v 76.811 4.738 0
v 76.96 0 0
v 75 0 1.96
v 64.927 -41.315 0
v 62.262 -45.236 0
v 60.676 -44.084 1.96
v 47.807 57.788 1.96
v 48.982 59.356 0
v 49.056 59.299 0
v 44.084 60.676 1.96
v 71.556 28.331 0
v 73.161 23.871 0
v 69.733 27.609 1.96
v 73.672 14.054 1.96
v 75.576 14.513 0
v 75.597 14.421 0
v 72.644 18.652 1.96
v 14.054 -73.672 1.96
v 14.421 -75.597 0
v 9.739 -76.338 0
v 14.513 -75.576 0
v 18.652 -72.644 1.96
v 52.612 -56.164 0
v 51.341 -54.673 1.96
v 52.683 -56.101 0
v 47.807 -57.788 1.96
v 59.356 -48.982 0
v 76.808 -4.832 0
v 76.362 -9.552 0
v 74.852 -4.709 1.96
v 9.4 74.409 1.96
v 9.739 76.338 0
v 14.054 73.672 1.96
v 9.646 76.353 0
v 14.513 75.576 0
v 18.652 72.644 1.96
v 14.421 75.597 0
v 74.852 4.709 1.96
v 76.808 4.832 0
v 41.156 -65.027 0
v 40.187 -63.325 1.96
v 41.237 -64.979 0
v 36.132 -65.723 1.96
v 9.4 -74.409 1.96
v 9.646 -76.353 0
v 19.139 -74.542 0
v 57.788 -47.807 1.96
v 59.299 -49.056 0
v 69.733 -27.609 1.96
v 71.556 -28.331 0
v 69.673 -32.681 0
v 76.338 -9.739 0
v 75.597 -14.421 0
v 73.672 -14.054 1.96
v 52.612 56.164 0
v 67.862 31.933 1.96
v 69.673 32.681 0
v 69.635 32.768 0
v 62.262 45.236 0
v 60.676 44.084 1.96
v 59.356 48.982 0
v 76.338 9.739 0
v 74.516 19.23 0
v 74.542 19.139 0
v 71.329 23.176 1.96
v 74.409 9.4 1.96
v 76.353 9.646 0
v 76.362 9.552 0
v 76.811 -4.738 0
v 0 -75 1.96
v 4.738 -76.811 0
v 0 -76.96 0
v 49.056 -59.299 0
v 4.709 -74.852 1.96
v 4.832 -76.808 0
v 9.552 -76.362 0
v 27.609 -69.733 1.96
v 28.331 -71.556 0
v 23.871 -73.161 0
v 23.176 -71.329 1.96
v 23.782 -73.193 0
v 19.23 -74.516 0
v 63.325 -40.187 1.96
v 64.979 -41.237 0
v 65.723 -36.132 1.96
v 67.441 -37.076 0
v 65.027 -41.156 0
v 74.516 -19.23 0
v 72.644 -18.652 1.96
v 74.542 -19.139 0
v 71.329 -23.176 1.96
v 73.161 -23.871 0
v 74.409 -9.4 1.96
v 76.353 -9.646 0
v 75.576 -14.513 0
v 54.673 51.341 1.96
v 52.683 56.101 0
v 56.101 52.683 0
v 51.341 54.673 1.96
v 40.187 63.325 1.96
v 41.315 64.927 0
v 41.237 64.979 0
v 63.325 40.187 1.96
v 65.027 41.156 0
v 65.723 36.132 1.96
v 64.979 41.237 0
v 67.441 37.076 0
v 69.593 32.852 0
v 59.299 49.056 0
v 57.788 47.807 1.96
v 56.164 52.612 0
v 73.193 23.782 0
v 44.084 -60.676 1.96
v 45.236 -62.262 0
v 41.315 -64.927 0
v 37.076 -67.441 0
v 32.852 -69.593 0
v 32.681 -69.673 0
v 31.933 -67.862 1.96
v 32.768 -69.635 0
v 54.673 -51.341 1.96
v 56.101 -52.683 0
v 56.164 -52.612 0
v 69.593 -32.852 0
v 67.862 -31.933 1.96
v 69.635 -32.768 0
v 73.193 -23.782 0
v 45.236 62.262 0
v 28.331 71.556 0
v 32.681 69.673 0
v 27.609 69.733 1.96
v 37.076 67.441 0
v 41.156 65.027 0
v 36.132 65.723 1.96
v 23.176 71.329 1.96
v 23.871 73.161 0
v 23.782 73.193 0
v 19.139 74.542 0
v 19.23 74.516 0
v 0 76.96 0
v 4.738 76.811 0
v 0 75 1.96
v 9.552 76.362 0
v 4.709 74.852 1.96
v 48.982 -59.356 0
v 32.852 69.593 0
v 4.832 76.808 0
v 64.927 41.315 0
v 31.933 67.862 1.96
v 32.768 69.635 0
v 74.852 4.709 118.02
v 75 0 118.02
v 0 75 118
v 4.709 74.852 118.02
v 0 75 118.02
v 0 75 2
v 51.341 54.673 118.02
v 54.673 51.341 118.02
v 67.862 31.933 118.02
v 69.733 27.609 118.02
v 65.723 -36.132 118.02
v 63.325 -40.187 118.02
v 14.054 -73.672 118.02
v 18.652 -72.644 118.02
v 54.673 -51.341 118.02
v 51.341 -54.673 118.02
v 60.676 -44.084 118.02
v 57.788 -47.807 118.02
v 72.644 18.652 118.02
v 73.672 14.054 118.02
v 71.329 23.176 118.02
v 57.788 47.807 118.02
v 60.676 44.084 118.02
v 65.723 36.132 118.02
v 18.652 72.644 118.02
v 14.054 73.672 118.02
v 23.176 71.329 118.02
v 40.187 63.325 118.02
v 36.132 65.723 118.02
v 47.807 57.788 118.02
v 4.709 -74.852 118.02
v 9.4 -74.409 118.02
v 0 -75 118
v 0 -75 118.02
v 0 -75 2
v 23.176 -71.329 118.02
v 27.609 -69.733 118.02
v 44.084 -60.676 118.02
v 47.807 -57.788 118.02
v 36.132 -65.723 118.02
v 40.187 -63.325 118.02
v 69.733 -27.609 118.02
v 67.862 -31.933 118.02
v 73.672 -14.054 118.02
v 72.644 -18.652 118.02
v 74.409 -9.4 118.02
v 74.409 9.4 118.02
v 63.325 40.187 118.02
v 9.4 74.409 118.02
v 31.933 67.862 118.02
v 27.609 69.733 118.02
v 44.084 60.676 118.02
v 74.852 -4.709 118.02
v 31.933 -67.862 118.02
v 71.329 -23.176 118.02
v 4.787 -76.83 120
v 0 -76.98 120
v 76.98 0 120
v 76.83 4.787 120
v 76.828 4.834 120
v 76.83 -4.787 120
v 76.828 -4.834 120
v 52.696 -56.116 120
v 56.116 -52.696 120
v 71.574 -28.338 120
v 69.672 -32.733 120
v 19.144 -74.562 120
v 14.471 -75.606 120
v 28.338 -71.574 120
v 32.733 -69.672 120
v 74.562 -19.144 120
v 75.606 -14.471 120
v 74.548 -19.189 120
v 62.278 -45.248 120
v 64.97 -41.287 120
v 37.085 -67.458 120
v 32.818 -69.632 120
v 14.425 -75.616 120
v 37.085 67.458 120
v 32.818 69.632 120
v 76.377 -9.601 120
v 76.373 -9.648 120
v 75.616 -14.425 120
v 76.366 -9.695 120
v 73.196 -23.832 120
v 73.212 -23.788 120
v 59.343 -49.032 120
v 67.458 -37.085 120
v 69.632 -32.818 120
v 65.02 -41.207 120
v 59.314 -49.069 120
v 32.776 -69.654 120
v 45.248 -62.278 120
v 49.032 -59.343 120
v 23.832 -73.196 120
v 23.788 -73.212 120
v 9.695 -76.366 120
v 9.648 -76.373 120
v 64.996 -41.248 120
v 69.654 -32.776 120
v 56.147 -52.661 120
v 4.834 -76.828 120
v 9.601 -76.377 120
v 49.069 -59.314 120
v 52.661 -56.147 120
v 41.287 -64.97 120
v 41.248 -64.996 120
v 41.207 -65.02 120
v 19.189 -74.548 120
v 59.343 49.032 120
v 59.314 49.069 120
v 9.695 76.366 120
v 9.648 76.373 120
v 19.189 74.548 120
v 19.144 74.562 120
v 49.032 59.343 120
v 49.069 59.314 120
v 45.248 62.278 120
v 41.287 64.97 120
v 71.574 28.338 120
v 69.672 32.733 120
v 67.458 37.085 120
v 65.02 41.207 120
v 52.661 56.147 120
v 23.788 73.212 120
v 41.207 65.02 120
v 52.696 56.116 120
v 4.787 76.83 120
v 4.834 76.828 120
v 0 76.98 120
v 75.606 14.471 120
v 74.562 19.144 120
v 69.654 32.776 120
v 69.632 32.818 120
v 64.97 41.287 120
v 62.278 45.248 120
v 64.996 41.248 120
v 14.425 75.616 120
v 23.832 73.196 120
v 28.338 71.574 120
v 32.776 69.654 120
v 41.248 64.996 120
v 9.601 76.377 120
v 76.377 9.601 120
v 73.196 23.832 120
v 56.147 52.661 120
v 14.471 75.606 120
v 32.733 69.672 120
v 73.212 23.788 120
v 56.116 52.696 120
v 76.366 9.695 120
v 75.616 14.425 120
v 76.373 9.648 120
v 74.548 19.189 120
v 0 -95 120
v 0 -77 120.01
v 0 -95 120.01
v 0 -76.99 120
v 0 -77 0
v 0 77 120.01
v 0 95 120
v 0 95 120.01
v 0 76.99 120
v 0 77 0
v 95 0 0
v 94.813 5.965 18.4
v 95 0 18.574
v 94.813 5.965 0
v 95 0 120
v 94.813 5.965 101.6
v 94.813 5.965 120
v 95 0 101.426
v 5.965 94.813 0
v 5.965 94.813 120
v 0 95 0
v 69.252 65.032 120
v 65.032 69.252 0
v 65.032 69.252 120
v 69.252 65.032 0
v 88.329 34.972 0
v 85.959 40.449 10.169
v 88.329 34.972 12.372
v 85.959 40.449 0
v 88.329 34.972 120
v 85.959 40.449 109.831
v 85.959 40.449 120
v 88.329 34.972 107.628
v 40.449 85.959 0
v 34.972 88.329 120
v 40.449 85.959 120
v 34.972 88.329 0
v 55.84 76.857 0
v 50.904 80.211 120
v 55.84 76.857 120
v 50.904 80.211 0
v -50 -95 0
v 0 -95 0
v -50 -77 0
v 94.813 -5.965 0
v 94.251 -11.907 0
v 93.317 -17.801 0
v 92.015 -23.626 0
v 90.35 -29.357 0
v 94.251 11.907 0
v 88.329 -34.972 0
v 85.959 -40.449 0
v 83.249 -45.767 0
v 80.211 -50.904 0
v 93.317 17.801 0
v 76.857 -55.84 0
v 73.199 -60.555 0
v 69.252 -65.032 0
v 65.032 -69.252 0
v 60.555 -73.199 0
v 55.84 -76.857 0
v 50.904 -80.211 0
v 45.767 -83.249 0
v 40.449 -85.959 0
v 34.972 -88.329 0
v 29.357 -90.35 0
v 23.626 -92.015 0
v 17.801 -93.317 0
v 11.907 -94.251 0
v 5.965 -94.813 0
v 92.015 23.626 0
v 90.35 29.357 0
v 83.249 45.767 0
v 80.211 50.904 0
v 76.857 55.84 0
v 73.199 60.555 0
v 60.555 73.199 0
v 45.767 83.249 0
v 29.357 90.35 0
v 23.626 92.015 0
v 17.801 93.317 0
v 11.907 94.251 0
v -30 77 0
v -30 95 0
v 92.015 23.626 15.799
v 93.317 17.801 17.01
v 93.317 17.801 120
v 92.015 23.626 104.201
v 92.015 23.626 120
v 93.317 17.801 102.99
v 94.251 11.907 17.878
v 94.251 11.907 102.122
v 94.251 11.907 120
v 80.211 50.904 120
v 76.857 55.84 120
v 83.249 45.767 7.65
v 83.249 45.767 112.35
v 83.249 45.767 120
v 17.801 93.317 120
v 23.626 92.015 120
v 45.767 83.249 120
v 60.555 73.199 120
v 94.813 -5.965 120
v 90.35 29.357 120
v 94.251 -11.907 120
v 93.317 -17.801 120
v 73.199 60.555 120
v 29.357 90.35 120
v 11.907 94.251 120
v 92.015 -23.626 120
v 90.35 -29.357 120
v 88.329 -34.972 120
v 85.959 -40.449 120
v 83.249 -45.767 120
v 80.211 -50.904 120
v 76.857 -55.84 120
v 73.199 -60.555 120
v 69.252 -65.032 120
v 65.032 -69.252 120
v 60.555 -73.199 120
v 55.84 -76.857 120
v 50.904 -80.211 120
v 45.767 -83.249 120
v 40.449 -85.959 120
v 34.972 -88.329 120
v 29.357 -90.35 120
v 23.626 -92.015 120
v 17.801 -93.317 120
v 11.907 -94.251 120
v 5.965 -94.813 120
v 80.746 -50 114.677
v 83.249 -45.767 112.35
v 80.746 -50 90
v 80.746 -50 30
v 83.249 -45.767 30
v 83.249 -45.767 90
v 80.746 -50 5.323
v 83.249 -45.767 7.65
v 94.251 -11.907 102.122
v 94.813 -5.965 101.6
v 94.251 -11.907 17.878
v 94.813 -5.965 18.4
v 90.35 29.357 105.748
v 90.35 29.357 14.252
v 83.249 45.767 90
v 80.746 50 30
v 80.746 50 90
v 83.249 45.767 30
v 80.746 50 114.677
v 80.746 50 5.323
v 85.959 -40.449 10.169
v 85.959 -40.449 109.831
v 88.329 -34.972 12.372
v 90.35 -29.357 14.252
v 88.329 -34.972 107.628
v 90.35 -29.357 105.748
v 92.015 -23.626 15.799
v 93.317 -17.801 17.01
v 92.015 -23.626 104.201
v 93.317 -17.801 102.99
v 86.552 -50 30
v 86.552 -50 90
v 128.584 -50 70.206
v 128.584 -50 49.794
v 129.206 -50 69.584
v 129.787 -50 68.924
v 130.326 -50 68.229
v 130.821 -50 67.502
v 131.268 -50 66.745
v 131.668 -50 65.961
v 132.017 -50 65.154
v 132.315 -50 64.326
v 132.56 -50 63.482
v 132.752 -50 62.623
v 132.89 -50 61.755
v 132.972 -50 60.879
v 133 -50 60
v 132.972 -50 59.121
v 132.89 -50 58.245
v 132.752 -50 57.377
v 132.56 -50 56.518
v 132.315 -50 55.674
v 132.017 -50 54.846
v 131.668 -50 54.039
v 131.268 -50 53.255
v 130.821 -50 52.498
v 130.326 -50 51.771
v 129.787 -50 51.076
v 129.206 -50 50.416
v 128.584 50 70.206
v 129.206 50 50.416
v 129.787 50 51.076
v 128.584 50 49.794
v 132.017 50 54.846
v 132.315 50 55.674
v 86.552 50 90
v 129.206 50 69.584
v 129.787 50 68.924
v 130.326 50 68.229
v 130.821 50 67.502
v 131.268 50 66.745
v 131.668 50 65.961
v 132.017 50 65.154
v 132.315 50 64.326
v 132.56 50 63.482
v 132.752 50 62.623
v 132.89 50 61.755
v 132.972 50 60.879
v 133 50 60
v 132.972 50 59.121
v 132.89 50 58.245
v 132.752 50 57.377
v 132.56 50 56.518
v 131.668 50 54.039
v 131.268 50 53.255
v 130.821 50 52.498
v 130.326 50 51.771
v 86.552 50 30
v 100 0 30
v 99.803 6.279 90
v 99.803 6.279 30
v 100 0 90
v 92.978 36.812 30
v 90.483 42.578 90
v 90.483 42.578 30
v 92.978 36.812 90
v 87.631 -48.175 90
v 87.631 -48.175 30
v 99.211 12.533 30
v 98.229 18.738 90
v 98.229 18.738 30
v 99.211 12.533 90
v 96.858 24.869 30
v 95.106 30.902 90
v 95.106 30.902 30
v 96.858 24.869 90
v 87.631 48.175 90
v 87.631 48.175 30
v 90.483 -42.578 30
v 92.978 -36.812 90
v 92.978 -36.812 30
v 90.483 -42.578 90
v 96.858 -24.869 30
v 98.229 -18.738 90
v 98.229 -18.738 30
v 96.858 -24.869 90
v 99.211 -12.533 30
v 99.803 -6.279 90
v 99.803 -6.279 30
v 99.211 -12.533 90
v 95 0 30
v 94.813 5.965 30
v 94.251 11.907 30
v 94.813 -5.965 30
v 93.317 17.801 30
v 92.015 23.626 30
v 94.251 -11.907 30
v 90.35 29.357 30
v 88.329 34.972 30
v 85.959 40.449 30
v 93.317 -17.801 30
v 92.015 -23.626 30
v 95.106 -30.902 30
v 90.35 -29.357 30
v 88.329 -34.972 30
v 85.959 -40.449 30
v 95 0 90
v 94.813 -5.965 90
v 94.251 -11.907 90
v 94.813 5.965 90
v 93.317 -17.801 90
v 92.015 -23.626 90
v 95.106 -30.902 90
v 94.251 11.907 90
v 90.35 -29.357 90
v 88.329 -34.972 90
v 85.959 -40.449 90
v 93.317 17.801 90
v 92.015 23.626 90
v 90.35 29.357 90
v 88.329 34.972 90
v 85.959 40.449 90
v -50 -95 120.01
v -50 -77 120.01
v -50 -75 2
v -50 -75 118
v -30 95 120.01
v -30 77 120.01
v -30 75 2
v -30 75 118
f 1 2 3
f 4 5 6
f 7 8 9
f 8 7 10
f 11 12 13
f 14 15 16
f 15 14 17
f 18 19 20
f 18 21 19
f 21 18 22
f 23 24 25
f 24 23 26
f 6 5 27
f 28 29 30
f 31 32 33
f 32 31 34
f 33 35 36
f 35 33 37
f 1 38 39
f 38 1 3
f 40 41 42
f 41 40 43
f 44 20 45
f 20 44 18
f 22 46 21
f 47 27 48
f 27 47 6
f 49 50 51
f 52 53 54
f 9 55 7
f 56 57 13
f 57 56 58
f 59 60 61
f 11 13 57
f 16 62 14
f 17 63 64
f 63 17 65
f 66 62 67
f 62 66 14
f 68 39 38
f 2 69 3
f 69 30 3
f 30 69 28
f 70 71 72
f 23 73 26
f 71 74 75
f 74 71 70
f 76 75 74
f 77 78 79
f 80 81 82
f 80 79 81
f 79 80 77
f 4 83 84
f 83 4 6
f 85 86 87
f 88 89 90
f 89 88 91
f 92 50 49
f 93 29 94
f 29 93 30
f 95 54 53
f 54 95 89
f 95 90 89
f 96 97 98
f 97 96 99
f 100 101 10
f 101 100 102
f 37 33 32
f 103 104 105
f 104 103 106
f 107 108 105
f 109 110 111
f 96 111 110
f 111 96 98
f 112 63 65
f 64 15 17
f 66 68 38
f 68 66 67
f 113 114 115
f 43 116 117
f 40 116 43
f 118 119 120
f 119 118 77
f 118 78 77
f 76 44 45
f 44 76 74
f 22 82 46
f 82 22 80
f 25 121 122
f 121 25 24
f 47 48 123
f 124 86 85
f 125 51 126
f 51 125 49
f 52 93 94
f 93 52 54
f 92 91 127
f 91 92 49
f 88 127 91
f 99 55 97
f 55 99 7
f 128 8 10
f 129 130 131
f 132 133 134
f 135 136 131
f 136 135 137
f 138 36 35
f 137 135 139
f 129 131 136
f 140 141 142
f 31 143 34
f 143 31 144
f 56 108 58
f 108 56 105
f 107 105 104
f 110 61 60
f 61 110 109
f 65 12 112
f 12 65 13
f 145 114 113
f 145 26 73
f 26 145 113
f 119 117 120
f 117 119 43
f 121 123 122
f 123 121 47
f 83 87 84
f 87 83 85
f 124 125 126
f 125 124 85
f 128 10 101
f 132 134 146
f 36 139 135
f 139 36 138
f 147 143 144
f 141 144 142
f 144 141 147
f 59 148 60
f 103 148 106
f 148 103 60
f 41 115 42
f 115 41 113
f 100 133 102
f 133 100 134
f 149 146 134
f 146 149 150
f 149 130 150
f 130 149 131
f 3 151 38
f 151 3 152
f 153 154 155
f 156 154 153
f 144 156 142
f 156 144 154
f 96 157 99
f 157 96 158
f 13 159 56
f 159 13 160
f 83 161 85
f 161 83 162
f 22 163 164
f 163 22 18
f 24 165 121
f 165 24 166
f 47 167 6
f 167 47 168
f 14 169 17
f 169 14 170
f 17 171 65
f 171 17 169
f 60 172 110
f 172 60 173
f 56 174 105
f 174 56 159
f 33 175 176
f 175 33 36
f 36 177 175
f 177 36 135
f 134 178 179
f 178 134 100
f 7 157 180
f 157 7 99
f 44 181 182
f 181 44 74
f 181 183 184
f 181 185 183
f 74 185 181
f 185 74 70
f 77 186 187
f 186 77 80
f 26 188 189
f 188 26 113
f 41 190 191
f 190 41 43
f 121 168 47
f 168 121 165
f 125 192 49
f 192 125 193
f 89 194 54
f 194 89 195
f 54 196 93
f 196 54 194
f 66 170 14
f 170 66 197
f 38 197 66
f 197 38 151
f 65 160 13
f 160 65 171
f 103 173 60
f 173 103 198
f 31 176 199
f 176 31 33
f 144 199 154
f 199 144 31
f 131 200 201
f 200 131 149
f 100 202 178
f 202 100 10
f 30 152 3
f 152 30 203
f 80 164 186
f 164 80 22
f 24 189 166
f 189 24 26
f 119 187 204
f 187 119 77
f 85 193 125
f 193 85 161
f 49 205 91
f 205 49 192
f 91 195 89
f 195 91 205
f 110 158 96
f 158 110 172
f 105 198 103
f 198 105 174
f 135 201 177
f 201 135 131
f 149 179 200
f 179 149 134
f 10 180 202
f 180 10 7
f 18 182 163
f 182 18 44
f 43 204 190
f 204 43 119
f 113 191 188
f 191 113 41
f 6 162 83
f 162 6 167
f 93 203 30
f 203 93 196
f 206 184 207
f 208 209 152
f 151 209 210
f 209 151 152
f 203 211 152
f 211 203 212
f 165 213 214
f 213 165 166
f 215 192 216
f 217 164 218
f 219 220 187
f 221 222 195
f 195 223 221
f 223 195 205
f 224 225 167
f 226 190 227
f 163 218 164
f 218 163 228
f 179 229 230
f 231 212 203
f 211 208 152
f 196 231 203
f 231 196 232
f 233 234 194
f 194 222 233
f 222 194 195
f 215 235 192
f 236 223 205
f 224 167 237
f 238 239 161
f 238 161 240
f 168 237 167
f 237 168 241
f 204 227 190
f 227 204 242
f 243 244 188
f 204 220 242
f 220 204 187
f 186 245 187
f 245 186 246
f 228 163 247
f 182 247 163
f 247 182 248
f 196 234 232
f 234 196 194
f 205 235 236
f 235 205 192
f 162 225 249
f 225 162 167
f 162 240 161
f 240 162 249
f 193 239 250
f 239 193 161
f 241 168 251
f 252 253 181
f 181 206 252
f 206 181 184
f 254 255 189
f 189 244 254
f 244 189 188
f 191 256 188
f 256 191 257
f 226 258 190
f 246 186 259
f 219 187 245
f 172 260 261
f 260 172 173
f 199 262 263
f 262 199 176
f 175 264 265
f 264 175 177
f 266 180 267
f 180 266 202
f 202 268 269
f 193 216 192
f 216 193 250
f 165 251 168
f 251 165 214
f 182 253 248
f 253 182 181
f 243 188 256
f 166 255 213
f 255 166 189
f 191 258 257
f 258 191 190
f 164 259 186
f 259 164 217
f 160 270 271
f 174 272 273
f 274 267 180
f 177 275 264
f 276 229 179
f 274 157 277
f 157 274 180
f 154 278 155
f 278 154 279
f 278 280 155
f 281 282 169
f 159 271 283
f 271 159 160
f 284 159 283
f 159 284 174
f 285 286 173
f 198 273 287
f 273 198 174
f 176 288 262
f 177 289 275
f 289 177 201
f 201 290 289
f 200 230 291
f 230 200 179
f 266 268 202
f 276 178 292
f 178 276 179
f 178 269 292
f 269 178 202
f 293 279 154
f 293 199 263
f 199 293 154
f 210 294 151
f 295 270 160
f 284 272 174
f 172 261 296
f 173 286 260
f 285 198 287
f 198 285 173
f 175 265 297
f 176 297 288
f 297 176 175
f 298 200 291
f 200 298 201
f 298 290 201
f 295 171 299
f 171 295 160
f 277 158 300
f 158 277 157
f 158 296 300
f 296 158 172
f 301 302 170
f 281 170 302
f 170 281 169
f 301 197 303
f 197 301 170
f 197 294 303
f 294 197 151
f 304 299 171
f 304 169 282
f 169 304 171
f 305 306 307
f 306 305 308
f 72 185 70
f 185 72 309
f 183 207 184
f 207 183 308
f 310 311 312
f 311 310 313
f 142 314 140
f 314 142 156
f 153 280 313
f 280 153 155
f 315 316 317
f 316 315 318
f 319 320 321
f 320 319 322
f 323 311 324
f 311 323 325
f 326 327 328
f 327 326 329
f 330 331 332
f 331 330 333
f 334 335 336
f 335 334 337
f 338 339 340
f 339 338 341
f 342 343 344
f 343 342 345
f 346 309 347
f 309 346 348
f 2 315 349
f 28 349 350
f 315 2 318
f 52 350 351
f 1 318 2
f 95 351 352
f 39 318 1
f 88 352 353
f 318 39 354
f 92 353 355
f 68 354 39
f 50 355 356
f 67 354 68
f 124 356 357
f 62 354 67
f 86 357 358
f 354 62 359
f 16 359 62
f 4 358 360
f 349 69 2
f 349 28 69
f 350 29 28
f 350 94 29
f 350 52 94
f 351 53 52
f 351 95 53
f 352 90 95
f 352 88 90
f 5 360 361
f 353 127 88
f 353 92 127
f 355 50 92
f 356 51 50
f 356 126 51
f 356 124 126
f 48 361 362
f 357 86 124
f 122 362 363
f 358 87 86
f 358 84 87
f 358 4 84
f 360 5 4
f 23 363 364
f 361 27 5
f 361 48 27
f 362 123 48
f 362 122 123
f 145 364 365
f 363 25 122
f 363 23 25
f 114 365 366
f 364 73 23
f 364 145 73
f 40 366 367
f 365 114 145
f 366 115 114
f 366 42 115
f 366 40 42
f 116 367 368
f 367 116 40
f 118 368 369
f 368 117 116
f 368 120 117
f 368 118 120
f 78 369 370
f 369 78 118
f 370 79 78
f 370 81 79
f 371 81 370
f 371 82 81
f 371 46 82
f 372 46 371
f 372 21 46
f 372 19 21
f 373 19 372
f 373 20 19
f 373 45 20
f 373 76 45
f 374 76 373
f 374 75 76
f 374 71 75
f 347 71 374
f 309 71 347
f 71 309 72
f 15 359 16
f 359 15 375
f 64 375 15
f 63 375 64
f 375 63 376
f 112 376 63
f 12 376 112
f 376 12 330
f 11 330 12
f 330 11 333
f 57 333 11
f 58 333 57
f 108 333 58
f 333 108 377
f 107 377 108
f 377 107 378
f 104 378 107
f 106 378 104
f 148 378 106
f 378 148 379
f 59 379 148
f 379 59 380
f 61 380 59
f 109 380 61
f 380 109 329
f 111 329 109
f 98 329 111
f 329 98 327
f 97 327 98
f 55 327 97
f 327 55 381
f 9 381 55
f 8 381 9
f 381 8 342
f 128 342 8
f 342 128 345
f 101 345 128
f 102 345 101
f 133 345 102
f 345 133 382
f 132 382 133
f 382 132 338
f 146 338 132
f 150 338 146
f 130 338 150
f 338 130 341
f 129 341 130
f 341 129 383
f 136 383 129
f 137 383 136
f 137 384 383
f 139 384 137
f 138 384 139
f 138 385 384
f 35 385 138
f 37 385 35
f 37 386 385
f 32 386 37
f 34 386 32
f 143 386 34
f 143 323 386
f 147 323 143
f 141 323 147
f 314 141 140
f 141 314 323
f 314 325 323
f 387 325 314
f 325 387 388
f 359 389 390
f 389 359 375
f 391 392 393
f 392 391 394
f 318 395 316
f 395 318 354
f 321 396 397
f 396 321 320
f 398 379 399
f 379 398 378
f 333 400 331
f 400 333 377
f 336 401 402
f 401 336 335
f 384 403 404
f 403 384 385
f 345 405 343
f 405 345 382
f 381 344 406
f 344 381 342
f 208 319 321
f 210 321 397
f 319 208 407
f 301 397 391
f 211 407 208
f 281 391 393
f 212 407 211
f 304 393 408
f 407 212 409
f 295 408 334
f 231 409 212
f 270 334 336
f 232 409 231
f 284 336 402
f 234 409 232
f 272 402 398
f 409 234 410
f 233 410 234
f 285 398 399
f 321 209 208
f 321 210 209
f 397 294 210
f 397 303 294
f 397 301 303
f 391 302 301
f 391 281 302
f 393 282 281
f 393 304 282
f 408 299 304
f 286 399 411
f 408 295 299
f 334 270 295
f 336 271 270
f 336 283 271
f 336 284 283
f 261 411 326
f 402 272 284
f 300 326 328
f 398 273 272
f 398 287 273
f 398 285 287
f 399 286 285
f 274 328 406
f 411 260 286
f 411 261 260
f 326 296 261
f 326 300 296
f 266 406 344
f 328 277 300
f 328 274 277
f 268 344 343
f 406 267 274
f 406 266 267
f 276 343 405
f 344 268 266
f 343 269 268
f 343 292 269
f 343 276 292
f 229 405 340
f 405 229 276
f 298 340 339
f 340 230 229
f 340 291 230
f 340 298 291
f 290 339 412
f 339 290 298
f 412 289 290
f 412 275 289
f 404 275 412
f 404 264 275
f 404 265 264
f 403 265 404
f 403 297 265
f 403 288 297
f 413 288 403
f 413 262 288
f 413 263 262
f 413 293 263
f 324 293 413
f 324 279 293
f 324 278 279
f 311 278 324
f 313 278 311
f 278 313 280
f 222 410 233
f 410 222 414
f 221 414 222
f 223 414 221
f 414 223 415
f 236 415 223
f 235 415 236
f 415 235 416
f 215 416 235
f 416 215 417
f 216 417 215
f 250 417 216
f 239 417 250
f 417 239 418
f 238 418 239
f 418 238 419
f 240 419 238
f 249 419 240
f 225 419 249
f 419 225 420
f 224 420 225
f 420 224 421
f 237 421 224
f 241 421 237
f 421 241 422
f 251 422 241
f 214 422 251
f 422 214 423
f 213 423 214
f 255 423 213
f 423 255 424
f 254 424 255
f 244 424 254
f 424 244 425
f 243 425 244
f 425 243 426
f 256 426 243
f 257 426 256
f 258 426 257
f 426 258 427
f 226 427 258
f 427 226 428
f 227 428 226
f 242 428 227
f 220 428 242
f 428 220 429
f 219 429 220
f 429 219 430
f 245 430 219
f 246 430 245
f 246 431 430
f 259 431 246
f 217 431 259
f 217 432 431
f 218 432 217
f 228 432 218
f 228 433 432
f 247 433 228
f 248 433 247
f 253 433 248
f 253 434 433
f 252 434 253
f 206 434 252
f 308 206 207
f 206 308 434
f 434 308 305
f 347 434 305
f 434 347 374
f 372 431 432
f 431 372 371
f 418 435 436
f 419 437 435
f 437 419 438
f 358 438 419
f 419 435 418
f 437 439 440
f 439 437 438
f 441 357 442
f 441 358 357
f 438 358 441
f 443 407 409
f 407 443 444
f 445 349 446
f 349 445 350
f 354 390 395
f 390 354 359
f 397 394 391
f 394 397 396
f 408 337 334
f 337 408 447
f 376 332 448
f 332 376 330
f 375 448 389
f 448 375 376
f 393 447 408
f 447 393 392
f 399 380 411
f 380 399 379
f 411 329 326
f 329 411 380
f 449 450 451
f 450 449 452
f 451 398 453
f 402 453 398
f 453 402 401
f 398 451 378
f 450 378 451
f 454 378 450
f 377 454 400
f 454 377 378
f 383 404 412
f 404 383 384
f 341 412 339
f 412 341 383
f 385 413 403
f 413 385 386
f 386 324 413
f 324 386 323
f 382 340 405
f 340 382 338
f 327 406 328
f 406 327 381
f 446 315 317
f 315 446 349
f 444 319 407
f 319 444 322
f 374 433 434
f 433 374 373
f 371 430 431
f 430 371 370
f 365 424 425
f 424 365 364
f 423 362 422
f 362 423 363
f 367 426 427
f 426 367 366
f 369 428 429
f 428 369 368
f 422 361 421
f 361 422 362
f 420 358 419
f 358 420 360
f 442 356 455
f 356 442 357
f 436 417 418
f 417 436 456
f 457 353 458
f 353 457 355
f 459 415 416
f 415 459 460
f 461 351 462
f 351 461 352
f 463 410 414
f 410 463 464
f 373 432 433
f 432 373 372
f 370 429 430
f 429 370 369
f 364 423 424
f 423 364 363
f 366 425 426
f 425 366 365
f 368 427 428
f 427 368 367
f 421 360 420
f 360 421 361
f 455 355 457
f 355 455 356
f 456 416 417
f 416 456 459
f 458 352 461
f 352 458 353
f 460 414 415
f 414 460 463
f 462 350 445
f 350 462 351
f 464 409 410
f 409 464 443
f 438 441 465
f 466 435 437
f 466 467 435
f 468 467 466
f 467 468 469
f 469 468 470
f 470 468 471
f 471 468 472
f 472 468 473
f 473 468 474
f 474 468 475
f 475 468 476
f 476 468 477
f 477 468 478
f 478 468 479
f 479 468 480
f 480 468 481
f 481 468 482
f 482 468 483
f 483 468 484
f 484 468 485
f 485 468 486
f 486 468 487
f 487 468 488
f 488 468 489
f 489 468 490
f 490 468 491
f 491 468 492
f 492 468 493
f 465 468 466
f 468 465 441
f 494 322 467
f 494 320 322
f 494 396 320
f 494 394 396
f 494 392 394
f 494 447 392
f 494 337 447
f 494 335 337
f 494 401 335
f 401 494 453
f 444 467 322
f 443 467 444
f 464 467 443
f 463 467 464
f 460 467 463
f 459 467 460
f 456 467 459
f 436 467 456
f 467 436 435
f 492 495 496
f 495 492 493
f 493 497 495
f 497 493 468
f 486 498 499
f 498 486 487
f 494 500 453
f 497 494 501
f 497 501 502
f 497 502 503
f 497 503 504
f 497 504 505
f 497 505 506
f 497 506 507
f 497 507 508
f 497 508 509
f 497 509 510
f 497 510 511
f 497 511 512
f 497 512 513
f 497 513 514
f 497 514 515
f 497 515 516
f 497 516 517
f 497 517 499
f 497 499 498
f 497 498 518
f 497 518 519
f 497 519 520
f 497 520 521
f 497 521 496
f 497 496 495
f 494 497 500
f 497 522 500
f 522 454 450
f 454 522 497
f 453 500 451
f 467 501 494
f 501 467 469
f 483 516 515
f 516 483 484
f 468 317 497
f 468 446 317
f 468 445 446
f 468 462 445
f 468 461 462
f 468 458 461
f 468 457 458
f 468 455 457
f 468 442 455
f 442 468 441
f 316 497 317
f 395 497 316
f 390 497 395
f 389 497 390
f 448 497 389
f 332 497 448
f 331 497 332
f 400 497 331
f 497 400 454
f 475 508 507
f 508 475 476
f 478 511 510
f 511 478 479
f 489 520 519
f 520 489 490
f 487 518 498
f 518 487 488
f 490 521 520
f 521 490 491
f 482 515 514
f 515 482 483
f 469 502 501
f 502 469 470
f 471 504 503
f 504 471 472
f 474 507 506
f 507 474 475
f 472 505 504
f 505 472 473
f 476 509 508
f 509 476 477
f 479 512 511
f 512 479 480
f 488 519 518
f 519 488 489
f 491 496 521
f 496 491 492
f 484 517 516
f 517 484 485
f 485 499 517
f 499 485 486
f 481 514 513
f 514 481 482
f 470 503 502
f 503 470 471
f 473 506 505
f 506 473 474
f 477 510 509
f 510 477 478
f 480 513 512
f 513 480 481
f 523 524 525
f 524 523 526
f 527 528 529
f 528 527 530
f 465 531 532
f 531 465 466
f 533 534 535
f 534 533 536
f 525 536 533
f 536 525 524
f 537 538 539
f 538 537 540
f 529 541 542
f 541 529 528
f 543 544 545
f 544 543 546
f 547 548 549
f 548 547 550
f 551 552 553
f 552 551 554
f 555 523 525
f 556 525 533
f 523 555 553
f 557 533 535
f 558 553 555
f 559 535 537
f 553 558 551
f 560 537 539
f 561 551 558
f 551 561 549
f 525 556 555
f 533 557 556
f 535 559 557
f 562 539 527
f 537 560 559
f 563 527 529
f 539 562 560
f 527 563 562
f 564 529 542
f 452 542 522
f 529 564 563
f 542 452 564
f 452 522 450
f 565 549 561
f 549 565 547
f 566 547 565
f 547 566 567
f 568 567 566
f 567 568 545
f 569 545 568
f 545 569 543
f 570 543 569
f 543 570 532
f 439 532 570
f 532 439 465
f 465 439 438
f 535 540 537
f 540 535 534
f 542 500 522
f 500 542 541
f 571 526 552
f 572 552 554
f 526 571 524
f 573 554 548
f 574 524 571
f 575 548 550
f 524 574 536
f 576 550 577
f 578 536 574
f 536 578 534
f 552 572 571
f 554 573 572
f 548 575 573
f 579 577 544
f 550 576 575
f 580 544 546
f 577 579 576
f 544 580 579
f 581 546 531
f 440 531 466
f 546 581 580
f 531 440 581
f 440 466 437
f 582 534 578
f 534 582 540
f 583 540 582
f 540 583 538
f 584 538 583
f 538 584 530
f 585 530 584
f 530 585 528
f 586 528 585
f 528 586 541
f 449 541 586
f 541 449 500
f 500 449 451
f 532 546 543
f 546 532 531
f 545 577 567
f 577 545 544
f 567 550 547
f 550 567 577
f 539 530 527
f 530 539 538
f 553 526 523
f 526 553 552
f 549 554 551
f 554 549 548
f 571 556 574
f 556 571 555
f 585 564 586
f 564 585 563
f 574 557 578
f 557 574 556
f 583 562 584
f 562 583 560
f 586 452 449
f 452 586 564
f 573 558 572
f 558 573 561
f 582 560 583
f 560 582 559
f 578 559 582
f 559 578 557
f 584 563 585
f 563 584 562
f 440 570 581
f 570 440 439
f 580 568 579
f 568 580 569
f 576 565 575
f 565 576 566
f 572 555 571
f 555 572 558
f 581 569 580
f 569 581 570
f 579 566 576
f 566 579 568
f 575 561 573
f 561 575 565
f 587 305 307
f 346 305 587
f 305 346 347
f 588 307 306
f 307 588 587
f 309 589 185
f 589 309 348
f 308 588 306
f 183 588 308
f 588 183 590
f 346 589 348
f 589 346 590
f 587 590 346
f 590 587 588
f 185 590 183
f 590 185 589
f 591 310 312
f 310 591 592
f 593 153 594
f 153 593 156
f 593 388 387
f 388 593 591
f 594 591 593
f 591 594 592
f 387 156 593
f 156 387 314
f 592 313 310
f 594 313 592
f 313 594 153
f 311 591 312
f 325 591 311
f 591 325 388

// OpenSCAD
$fn=100;
extra=0.02;


supDia = 150;
clampWallThickness = 20;
clampH = 120;

champfer = 2; //mm

rodDia = 8;
rodTubeLen = 100;
rodTubeWall = 10;

strapWidth = 60;
strapTh = 5;

extensionX1 = 50;
extensionX2 = 30;



sup_puller();
module sup_puller()
{
  difference()
  {
    corpus();
    /* cylinder(r=(supDia/2+clampWallThickness), h=clampH); */
    translate([0,0,-extra])
    {
      translate([0,0,-extra])
        cylinder(r2=(supDia/2), r1=(supDia/2)+champfer, h=champfer);
      translate([0,0,champfer-extra*2])
        cylinder(r=(supDia/2), h=clampH-champfer);
      translate([0,0,clampH-champfer+extra*2])
        cylinder(r1=(supDia/2), r2=(supDia/2)+champfer, h=champfer);

      translate([-supDia/2-clampWallThickness-extra*2,-supDia/2-clampWallThickness-extra,0])
        cube([supDia/2+clampWallThickness+extra*2,supDia+clampWallThickness*2+extra*2,clampH+extra*2]);
    }
    union() {
      tempZmove = clampH/2 - strapWidth/2;
      translate([0,0,tempZmove])
      strapCutout();
    }
  }

  translate([-extensionX1,-(supDia/2+clampWallThickness),0])
  extension(lenX=extensionX1, wallTh=clampWallThickness, zHeight=clampH, chmpf=champfer);

  translate([-extensionX2,(supDia/2+clampWallThickness),0])
  mirror([0,1,0])
  extension(lenX=extensionX2, wallTh=clampWallThickness, zHeight=clampH, chmpf=champfer);
  /* cube([extensionX1,clampWallThickness,clampH-champfer*2]); */

}

module strapCutout()
{
difference()
{
 cylinder(r=(supDia/2+clampWallThickness)+strapTh, h=strapWidth);
 translate([0,0,-extra])
 cylinder(r=(supDia/2+clampWallThickness), h=strapWidth+extra*2);
 translate([-supDia/2-clampWallThickness-strapTh-extra*2,
   -supDia/2-clampWallThickness-strapTh-extra,
   0])
   cube([supDia/2+clampWallThickness+extra*2,supDia+clampWallThickness*2+strapTh*2+extra*2,clampH+extra*2]);
}
}

/* corpus(); */
module corpus()
{
  difference()
  {
    union()
    {
      cylinder(r=(supDia/2+clampWallThickness), h=clampH);

      hull()
      {
        translate([supDia/2,-rodTubeLen/2,0])
          cube([extra,rodTubeLen,clampH]);

        translate([supDia/2+clampWallThickness+rodDia/2+rodTubeWall*2,-rodTubeLen/2,clampH/2])
          rotate([-90,0,0])
          cylinder(r=(rodDia/2)+rodTubeWall,h=rodTubeLen);
      }
    }

    translate([-supDia/2-clampWallThickness-extra*2,-supDia/2-clampWallThickness-extra,0])
      cube([supDia/2+clampWallThickness+extra*2,supDia+clampWallThickness*2+extra*2,clampH+extra*2]);

  }
}


module extension(lenX=10, wallTh=10, zHeight=10, chmpf=1)
{
  hull()
  {
    cube([lenX, wallTh-chmpf, 0.01]);
    translate([0,0,chmpf])
      cube([lenX, wallTh, zHeight-2*chmpf]);
    translate([0,0,zHeight])
      cube([lenX, wallTh-chmpf, 0.01]);
  }
}
